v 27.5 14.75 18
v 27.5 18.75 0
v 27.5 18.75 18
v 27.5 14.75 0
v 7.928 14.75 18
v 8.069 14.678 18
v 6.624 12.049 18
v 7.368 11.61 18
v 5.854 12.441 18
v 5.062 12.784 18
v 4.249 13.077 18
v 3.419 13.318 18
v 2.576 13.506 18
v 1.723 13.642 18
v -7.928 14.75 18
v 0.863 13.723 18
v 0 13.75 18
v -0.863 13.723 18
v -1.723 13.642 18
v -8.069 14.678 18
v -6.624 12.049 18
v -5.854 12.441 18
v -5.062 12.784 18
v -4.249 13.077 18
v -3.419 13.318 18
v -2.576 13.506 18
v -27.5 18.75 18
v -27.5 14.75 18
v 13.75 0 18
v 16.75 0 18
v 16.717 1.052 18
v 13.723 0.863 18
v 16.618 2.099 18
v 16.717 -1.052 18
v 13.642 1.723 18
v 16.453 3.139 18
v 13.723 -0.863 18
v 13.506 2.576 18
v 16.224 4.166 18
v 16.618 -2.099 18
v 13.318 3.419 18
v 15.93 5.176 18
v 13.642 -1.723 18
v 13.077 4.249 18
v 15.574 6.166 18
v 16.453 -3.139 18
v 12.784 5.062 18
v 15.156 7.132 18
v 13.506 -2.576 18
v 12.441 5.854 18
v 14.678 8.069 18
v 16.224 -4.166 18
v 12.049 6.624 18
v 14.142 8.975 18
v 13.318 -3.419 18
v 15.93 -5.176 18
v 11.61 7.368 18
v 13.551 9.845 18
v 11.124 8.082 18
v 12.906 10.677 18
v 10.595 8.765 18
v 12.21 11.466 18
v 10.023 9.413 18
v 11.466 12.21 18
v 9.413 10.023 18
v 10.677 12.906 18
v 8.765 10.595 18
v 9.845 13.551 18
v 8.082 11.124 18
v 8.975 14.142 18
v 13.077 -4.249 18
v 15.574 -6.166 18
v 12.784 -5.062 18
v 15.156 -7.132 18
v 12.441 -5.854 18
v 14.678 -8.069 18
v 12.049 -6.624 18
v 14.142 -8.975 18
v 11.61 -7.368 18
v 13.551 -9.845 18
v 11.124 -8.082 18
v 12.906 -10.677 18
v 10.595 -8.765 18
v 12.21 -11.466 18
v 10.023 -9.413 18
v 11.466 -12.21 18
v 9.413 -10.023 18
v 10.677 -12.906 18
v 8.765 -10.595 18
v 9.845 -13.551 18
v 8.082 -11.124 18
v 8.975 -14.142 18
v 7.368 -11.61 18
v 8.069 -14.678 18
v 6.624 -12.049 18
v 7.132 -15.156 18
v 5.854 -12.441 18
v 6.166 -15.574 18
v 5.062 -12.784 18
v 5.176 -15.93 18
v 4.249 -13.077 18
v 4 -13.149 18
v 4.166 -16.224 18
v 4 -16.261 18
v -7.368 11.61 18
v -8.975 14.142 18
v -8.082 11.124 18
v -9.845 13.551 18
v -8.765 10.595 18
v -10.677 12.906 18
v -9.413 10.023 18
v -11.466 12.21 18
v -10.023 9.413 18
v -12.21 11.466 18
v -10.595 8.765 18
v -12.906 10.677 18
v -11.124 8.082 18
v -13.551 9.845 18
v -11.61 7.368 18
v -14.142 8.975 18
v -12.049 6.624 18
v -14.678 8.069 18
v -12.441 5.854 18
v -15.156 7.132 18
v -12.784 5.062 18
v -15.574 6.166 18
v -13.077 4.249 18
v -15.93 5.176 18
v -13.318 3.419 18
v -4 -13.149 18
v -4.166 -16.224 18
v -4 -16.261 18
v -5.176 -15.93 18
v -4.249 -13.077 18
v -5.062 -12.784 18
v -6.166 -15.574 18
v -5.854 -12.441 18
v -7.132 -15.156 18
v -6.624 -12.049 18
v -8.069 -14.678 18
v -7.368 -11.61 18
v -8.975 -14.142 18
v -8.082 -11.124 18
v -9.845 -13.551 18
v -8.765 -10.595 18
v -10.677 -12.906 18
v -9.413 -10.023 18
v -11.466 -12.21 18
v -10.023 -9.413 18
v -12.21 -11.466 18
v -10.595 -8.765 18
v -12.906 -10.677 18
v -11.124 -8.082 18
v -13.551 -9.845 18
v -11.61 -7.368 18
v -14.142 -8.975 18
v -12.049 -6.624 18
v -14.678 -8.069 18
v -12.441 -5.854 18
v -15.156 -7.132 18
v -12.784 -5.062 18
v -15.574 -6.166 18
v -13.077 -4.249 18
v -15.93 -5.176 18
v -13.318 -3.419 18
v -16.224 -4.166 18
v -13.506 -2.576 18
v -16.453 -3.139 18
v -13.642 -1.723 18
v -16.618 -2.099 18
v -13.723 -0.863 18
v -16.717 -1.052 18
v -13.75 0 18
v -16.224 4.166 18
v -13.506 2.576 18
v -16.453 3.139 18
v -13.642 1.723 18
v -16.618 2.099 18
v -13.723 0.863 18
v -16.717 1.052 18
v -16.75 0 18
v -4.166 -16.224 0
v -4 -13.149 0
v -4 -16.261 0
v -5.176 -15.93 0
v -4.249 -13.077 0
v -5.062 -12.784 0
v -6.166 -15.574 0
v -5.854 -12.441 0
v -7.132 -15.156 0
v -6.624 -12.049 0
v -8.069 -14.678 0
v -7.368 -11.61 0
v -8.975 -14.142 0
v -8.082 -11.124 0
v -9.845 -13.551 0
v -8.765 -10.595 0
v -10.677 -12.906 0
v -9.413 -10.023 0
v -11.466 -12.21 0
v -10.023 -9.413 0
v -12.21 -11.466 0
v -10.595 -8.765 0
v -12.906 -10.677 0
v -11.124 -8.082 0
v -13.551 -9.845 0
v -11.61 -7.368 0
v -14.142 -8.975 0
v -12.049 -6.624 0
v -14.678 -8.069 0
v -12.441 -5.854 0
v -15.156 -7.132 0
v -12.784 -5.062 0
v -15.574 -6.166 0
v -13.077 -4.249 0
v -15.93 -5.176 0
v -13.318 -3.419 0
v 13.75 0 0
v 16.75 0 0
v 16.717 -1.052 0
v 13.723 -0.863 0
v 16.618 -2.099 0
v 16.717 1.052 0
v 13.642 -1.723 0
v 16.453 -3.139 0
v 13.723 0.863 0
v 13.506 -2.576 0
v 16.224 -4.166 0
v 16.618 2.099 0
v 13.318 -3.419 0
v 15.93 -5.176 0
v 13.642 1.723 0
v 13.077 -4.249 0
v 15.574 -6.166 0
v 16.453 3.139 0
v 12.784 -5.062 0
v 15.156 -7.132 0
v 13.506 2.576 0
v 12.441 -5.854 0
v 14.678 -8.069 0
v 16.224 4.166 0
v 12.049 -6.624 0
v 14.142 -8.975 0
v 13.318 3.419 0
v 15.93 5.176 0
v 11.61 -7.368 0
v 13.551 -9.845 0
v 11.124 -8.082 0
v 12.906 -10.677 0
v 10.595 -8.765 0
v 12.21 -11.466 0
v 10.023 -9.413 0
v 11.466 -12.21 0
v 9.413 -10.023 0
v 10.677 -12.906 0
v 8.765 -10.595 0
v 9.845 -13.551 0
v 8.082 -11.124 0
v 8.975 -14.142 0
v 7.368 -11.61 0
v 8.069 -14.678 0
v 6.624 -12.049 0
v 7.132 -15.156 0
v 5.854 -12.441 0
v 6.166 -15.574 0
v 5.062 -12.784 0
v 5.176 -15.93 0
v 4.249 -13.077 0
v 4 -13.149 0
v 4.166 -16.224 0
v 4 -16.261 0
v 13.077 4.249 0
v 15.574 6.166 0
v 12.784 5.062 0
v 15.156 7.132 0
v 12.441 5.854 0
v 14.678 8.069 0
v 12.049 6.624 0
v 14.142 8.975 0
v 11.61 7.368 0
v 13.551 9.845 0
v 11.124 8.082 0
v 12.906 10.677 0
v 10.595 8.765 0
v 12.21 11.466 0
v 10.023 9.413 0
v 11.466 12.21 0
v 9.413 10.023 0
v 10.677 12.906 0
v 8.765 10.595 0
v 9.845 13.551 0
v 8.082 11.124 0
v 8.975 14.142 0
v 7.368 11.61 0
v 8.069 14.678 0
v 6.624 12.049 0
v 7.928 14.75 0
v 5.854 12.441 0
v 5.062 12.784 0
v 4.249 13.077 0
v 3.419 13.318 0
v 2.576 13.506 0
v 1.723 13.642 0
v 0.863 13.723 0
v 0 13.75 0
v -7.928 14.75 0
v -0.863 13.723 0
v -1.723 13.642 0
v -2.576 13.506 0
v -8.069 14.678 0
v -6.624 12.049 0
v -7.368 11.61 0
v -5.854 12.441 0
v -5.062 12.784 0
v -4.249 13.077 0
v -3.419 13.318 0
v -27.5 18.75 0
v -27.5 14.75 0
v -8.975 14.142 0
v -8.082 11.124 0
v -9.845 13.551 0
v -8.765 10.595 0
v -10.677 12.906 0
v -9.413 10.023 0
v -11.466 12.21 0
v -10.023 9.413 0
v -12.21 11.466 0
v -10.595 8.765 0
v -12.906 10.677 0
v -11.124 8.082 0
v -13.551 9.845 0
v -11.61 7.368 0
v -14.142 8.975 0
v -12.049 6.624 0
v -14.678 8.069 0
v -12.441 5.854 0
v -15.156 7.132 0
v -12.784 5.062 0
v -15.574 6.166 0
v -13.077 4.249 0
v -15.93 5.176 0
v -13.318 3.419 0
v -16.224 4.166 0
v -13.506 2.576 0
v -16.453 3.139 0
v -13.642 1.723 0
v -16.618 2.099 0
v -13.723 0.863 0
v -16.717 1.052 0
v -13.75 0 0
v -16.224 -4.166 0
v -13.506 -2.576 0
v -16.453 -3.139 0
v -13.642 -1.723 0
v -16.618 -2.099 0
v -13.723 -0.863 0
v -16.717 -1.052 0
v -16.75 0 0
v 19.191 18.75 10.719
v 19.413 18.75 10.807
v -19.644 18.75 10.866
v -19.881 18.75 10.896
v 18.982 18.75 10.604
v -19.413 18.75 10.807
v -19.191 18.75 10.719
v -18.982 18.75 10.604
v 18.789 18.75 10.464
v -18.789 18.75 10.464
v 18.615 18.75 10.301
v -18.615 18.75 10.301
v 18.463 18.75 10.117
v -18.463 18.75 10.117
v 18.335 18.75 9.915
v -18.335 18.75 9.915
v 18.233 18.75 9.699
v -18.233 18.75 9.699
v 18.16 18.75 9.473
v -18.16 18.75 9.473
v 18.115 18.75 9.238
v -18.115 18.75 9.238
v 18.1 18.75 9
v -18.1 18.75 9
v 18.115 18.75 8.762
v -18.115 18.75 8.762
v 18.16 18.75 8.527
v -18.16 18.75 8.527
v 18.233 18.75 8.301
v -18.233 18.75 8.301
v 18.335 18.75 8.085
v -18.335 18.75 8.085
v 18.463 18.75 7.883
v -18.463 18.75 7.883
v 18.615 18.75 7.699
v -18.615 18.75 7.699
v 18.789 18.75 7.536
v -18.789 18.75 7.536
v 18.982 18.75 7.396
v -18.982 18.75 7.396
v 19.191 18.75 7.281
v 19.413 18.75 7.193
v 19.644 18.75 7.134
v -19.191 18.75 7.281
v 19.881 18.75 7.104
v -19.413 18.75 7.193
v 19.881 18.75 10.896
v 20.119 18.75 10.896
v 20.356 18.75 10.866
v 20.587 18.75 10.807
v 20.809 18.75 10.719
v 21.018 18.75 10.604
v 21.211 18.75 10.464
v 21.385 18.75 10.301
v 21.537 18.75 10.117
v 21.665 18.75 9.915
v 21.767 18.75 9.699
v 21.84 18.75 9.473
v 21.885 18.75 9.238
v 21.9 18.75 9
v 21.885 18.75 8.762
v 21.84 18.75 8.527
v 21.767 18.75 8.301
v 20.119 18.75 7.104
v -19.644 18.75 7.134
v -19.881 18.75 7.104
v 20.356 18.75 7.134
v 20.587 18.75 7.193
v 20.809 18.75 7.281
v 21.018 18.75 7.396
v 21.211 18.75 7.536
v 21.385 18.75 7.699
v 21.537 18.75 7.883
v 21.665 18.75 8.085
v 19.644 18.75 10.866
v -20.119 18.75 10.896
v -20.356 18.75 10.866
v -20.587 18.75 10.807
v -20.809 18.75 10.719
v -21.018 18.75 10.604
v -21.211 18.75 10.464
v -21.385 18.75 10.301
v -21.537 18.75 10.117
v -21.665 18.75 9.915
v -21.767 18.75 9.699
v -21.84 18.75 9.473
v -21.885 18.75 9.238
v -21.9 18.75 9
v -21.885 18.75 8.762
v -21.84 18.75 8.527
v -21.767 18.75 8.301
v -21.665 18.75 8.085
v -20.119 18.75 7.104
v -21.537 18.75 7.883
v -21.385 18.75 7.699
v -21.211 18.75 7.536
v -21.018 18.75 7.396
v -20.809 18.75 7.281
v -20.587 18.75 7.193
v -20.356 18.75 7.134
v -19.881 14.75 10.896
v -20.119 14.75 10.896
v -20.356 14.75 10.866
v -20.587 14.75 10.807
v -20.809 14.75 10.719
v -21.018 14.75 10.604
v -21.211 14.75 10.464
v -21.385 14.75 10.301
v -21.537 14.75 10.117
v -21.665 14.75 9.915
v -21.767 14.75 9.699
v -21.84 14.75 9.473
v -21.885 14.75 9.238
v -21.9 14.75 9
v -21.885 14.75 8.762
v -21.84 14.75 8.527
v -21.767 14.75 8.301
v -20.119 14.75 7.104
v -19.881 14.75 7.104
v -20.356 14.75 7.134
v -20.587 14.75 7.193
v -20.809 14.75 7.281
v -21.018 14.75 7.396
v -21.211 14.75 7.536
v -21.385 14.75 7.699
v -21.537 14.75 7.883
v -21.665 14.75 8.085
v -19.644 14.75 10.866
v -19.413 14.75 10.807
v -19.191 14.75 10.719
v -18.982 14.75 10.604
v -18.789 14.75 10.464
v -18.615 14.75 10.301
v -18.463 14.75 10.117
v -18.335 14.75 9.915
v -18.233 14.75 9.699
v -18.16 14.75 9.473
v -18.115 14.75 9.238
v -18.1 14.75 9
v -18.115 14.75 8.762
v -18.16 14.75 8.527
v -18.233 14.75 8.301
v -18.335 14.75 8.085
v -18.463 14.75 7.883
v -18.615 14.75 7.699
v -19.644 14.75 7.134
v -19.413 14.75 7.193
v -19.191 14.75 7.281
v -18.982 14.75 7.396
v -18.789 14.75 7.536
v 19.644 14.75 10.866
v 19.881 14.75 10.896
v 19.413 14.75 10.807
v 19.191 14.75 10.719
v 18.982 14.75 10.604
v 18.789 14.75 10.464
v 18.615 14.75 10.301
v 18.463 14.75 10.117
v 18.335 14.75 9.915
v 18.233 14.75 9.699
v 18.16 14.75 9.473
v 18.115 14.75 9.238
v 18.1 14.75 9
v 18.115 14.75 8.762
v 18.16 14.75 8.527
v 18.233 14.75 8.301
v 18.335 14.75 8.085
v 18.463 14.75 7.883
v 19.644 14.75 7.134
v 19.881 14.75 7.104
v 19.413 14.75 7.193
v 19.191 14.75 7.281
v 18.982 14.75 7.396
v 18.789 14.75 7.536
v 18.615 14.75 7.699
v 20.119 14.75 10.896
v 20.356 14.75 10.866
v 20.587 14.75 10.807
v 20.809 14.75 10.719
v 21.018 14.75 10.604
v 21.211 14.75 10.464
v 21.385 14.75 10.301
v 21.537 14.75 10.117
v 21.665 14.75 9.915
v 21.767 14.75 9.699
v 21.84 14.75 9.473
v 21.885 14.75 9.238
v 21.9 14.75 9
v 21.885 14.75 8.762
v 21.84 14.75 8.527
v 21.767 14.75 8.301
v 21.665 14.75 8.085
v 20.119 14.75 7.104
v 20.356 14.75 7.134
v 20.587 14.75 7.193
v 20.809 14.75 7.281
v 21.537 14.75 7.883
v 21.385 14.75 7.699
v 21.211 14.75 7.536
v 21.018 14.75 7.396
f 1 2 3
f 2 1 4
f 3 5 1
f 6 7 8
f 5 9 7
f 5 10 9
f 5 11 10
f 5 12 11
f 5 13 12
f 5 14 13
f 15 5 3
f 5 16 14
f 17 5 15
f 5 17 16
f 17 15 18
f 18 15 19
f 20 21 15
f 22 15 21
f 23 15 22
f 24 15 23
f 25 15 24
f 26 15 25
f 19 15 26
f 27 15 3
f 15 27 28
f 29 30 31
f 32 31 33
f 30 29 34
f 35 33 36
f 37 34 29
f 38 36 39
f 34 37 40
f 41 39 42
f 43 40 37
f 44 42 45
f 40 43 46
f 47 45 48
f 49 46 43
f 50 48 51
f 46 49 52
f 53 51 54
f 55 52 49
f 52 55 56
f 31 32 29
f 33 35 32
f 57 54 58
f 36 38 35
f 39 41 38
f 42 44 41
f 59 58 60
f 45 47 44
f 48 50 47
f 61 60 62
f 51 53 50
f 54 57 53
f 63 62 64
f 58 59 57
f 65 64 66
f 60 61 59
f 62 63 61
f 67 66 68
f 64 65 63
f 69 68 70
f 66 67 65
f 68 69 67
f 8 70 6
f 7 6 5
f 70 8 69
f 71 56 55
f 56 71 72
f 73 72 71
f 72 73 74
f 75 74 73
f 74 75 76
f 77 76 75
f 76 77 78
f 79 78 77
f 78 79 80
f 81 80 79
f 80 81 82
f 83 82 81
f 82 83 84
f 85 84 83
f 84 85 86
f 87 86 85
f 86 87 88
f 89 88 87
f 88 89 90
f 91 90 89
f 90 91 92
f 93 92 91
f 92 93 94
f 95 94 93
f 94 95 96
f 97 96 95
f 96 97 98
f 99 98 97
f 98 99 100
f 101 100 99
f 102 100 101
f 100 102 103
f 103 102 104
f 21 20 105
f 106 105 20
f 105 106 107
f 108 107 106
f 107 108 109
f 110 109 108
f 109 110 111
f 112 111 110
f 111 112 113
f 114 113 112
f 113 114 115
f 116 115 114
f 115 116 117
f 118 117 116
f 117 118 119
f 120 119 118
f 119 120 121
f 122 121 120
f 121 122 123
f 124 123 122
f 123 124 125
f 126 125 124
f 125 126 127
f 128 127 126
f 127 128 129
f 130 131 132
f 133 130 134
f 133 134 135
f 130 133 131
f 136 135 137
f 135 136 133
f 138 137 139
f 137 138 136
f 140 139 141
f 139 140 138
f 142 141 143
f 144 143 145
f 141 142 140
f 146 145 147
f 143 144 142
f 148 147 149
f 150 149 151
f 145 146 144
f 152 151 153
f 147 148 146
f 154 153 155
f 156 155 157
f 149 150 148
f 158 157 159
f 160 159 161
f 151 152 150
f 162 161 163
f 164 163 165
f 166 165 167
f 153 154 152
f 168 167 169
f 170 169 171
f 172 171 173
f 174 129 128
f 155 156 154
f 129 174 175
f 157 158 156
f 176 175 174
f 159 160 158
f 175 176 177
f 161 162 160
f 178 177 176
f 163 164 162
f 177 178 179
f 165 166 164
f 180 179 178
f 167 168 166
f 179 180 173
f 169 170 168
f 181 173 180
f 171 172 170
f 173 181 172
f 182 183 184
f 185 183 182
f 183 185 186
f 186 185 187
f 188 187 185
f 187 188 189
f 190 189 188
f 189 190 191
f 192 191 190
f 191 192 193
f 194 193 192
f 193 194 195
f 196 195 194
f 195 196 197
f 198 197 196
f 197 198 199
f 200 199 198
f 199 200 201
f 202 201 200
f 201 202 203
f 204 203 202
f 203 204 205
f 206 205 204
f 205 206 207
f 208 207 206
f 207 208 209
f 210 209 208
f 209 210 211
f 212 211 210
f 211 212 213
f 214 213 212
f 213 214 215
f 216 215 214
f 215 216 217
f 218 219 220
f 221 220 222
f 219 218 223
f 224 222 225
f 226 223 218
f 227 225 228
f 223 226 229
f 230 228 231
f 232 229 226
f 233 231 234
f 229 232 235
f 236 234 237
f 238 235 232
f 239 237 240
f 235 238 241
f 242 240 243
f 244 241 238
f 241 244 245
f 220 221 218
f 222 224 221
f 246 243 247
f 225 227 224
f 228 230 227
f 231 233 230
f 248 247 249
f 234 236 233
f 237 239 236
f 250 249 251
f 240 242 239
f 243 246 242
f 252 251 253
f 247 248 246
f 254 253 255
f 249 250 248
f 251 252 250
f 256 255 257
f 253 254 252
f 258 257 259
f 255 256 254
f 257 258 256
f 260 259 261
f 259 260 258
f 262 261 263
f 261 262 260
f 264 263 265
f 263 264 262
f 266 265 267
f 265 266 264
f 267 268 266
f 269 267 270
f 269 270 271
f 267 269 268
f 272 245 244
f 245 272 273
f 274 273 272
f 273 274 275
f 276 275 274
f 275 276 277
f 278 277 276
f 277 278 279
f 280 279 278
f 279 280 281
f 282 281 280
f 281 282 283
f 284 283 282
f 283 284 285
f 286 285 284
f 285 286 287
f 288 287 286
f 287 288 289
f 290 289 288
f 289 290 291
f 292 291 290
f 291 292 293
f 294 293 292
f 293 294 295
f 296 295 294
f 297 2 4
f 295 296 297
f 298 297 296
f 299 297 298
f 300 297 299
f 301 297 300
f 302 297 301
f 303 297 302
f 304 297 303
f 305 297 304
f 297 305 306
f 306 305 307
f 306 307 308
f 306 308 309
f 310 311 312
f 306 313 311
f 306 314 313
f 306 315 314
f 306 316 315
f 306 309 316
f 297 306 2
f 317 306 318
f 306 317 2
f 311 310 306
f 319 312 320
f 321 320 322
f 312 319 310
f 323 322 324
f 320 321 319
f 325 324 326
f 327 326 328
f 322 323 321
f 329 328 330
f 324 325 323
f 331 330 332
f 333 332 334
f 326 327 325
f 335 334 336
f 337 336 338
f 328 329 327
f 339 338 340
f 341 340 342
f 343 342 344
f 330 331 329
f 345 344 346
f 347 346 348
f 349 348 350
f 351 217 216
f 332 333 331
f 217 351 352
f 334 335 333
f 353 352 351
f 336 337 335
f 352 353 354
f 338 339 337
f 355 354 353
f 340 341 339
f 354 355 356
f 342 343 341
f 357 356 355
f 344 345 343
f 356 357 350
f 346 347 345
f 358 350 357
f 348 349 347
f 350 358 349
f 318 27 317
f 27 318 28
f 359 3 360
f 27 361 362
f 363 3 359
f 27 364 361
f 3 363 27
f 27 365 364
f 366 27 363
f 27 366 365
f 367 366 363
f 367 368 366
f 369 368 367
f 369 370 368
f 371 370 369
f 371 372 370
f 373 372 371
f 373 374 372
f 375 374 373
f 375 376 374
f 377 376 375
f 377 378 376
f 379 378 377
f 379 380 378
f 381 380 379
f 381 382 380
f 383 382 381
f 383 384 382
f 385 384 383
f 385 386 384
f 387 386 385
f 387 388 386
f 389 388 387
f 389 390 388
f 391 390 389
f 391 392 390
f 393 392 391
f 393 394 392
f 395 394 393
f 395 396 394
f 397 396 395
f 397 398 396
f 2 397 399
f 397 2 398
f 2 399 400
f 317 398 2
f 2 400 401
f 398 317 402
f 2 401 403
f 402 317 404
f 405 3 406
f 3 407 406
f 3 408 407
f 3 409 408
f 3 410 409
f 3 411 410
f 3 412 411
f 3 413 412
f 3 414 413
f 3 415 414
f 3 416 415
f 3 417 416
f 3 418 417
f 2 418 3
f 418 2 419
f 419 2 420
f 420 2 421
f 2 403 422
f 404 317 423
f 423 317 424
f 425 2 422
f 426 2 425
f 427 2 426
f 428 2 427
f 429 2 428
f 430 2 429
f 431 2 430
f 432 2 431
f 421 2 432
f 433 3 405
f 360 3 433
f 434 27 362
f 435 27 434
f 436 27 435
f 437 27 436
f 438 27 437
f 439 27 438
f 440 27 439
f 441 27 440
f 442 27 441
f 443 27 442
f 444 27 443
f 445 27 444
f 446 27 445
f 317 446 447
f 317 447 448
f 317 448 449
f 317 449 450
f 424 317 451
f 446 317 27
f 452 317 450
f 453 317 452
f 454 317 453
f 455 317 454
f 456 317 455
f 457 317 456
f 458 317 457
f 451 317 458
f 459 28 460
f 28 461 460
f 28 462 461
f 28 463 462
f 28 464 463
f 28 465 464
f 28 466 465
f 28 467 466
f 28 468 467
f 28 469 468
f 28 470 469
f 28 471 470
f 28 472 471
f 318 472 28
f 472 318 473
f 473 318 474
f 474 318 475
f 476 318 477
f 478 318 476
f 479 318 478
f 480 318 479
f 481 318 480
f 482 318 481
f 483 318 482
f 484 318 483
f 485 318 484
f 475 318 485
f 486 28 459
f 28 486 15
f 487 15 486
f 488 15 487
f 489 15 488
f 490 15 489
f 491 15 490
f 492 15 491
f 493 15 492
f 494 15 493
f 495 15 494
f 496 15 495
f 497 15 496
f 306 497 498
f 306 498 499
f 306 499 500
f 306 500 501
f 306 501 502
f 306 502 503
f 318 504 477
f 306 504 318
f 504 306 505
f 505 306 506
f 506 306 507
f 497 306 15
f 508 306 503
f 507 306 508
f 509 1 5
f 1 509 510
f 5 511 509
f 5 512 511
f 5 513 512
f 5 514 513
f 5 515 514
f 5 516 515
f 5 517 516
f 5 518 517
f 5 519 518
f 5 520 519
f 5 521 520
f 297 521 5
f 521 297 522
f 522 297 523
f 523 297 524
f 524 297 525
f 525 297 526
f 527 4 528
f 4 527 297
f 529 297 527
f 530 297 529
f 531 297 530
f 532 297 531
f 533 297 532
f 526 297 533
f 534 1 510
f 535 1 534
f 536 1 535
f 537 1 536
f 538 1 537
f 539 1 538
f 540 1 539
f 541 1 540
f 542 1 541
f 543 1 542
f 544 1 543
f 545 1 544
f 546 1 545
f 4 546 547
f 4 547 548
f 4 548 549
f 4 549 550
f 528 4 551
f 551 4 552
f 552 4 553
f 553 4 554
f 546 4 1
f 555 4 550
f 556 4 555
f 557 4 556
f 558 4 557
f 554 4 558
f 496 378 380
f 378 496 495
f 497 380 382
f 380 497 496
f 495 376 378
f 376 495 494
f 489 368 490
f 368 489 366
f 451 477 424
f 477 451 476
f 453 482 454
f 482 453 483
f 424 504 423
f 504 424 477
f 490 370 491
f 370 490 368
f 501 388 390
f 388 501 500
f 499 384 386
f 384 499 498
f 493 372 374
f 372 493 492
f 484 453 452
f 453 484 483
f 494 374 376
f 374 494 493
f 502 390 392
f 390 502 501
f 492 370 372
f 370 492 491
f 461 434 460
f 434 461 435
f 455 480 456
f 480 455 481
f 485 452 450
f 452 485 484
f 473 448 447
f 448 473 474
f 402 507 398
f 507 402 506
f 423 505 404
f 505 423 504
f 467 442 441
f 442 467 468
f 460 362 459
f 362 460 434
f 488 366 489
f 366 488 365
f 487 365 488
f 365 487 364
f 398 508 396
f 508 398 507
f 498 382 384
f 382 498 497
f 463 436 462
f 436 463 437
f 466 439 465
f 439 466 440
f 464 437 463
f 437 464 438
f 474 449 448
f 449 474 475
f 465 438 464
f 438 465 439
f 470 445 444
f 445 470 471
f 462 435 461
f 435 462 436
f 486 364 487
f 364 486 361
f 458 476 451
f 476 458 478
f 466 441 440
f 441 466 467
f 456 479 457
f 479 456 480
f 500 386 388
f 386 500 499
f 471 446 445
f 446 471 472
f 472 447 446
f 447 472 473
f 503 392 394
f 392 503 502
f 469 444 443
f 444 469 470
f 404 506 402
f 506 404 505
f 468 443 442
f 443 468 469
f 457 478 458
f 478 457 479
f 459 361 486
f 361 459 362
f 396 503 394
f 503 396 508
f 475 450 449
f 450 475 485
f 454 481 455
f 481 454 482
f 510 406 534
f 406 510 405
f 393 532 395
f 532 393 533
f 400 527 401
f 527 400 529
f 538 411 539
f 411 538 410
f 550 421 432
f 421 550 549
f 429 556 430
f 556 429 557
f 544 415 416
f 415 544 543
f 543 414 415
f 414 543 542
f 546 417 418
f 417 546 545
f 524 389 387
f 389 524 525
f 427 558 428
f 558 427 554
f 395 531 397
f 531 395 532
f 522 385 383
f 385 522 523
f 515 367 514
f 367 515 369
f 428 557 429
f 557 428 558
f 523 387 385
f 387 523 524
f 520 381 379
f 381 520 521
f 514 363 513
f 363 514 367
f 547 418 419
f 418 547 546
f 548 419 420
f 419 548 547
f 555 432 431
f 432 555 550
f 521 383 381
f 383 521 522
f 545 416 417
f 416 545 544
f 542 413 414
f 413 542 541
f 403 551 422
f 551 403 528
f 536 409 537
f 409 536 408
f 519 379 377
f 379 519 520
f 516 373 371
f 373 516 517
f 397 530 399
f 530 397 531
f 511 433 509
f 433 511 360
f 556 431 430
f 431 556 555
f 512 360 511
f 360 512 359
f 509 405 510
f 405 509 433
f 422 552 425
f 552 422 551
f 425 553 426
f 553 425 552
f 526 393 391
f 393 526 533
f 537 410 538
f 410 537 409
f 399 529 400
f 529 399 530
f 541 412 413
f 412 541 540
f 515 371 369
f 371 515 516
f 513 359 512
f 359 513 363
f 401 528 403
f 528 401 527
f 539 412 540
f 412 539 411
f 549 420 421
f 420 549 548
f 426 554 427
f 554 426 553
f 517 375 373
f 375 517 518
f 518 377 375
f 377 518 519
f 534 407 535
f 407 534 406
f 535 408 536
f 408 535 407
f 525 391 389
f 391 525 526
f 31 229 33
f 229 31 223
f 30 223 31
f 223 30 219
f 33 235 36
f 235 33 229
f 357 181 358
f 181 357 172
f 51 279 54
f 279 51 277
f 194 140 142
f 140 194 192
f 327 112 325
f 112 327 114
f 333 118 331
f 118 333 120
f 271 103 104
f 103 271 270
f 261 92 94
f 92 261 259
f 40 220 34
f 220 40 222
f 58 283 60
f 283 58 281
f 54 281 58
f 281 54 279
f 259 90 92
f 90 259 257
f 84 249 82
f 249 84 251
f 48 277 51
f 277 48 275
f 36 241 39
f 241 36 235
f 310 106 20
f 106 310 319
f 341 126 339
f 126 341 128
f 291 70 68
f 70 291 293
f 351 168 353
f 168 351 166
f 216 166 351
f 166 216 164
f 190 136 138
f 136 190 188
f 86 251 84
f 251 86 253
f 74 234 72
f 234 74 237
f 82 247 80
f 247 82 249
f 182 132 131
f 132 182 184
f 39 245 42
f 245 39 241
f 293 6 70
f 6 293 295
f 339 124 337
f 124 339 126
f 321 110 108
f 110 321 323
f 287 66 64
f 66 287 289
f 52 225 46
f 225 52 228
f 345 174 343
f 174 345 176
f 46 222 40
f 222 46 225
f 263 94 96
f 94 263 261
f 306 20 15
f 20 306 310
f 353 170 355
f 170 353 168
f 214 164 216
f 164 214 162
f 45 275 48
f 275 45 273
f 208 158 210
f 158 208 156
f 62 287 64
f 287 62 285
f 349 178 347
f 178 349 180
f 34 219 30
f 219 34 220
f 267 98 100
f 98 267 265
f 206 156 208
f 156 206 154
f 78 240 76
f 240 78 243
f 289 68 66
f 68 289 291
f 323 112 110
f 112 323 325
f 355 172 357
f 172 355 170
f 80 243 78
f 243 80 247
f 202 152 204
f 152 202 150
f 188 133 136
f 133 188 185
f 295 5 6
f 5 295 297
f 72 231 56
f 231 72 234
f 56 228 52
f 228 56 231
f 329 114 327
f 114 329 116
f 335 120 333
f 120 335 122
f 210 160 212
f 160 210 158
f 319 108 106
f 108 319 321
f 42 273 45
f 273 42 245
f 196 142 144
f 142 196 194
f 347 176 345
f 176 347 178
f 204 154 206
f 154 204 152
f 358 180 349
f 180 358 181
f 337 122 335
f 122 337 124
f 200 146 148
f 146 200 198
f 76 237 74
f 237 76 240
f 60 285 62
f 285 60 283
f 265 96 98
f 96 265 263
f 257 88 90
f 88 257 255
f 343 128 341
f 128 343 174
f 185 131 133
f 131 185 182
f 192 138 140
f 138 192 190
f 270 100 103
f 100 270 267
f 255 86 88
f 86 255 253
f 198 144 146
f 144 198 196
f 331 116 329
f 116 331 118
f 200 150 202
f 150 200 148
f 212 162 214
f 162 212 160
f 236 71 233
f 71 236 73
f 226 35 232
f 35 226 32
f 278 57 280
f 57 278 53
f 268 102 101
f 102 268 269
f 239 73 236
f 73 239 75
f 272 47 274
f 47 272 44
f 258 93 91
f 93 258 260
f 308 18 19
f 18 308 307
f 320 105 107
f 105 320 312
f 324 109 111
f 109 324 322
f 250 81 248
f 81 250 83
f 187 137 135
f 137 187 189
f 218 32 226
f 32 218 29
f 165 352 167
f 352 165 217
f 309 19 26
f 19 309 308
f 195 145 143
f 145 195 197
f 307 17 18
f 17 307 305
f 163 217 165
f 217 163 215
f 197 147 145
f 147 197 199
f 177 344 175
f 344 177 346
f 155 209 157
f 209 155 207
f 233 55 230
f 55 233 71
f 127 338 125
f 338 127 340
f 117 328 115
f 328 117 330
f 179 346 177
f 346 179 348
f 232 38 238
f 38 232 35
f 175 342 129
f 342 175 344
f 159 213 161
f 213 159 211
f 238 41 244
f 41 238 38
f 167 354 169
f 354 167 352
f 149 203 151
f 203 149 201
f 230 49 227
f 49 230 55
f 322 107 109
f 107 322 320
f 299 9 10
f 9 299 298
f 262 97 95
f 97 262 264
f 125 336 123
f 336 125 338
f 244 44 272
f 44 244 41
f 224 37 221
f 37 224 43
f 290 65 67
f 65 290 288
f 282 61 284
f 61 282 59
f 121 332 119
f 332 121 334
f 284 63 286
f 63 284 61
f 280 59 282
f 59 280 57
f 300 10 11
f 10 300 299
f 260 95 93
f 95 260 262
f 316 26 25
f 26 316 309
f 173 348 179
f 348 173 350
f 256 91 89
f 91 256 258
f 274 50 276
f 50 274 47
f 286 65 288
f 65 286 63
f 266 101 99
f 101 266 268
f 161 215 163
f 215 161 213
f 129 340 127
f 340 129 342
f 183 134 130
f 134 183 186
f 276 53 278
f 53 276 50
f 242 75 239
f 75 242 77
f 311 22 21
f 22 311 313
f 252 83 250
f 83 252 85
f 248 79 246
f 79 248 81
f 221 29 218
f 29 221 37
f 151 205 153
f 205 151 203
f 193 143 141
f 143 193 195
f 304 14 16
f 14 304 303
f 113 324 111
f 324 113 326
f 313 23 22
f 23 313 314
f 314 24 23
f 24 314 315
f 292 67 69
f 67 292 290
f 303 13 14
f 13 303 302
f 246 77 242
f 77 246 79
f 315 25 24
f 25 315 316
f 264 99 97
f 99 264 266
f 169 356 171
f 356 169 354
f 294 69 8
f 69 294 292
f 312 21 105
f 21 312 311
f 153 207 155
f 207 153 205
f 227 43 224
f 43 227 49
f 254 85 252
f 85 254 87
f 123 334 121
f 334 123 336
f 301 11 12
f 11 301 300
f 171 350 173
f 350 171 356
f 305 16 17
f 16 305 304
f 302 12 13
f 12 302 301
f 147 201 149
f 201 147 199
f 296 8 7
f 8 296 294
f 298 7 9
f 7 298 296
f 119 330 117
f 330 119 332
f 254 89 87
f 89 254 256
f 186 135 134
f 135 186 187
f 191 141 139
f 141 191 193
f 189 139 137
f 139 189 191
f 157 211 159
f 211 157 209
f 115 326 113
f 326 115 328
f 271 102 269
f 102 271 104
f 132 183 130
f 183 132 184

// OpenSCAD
shaftDiameter = 27.5; // SCH40 PVC 3/4" OD + 1mm tolerance
clampWidth = 18;
clampThickness = 3.0;
clampLegLengthFromShaft = 10; // room for wing nut and thumb srew
clampLegThickness = clampThickness; // default is 'clampThickness' to keep it the same thickness as the clamp
clampLegGap = 8; 
clampToClampScrewCenter = (clampLegLengthFromShaft - clampThickness) / 2 - 0.5 ; //using '(clampLegLengthFromShaft - clampThickness) / 2' nearly centres this hole on the clamp leg
clampScrewDiameter = 4.5 ; // #8 clearance hole
shaftToMountPlate = 1;
mountPlateThickness = 4.0 ;
mountPlateLength = 55 ;
mountHoleSpacing = 40 ;
mountHoleDiameter = 3.8; 
screwHoleSmoothness = 50 ; // Aha! cylinder with $fn can generate hexagon for bolt! 6 = printable vertically. Applies to mount plate screw holes and clamp leg screw holes
clampSmoothness = 100 ;

clampWithMountPlate();

/*
translate([50,0,50]) clamp();
*/

module clampWithMountPlate(){
	union(){
		translate([0, shaftDiameter / 2 + shaftToMountPlate + mountPlateThickness / 2, clampWidth / 2])
			difference(){
				cube([mountPlateLength, mountPlateThickness, clampWidth], center = true);
				translate([-mountHoleSpacing / 2,0,0]) rotate([90,0,0]) 
                    cylinder(r = mountHoleDiameter / 2, h = mountPlateThickness + 2, center = true, $fn = screwHoleSmoothness);
				translate([mountHoleSpacing / 2,0,0]) rotate([90,0,0]) 
                    cylinder(r = mountHoleDiameter / 2, h = mountPlateThickness + 2, center = true, $fn = screwHoleSmoothness);
			}
		clamp();
	}
}


 module clamp(){
	difference(){
		union(){
			cylinder(r = shaftDiameter / 2 + clampThickness, h = clampWidth, $fn = clampSmoothness);
			translate([0,-(shaftDiameter / 2 + clampLegLengthFromShaft) / 2,clampWidth / 2]) 
                // Clamp leg.
                *cube([clampLegThickness * 2 + clampLegGap, shaftDiameter / 2 + clampLegLengthFromShaft,clampWidth], center = true);
		}
			translate([0,0,-1]) 
                cylinder(r = shaftDiameter / 2,h = clampWidth + 2, $fn = clampSmoothness);			
			translate([0, -(shaftDiameter / 4 + clampLegLengthFromShaft ) + 0.1, clampWidth / 2]) 
                cube([clampLegGap, shaftDiameter / 2 + clampLegLengthFromShaft * 2, clampWidth + 2], center = true);
			translate([0, -(shaftDiameter / 2 + clampThickness + clampToClampScrewCenter ), clampWidth / 2]) rotate([0, 90, 0]) 
                // Leg screw bot hole. 
                *cylinder(r = clampScrewDiameter / 2, h = clampLegThickness * 2 + clampLegGap + 2,center = true, $fn = screwHoleSmoothness);
	}
}
